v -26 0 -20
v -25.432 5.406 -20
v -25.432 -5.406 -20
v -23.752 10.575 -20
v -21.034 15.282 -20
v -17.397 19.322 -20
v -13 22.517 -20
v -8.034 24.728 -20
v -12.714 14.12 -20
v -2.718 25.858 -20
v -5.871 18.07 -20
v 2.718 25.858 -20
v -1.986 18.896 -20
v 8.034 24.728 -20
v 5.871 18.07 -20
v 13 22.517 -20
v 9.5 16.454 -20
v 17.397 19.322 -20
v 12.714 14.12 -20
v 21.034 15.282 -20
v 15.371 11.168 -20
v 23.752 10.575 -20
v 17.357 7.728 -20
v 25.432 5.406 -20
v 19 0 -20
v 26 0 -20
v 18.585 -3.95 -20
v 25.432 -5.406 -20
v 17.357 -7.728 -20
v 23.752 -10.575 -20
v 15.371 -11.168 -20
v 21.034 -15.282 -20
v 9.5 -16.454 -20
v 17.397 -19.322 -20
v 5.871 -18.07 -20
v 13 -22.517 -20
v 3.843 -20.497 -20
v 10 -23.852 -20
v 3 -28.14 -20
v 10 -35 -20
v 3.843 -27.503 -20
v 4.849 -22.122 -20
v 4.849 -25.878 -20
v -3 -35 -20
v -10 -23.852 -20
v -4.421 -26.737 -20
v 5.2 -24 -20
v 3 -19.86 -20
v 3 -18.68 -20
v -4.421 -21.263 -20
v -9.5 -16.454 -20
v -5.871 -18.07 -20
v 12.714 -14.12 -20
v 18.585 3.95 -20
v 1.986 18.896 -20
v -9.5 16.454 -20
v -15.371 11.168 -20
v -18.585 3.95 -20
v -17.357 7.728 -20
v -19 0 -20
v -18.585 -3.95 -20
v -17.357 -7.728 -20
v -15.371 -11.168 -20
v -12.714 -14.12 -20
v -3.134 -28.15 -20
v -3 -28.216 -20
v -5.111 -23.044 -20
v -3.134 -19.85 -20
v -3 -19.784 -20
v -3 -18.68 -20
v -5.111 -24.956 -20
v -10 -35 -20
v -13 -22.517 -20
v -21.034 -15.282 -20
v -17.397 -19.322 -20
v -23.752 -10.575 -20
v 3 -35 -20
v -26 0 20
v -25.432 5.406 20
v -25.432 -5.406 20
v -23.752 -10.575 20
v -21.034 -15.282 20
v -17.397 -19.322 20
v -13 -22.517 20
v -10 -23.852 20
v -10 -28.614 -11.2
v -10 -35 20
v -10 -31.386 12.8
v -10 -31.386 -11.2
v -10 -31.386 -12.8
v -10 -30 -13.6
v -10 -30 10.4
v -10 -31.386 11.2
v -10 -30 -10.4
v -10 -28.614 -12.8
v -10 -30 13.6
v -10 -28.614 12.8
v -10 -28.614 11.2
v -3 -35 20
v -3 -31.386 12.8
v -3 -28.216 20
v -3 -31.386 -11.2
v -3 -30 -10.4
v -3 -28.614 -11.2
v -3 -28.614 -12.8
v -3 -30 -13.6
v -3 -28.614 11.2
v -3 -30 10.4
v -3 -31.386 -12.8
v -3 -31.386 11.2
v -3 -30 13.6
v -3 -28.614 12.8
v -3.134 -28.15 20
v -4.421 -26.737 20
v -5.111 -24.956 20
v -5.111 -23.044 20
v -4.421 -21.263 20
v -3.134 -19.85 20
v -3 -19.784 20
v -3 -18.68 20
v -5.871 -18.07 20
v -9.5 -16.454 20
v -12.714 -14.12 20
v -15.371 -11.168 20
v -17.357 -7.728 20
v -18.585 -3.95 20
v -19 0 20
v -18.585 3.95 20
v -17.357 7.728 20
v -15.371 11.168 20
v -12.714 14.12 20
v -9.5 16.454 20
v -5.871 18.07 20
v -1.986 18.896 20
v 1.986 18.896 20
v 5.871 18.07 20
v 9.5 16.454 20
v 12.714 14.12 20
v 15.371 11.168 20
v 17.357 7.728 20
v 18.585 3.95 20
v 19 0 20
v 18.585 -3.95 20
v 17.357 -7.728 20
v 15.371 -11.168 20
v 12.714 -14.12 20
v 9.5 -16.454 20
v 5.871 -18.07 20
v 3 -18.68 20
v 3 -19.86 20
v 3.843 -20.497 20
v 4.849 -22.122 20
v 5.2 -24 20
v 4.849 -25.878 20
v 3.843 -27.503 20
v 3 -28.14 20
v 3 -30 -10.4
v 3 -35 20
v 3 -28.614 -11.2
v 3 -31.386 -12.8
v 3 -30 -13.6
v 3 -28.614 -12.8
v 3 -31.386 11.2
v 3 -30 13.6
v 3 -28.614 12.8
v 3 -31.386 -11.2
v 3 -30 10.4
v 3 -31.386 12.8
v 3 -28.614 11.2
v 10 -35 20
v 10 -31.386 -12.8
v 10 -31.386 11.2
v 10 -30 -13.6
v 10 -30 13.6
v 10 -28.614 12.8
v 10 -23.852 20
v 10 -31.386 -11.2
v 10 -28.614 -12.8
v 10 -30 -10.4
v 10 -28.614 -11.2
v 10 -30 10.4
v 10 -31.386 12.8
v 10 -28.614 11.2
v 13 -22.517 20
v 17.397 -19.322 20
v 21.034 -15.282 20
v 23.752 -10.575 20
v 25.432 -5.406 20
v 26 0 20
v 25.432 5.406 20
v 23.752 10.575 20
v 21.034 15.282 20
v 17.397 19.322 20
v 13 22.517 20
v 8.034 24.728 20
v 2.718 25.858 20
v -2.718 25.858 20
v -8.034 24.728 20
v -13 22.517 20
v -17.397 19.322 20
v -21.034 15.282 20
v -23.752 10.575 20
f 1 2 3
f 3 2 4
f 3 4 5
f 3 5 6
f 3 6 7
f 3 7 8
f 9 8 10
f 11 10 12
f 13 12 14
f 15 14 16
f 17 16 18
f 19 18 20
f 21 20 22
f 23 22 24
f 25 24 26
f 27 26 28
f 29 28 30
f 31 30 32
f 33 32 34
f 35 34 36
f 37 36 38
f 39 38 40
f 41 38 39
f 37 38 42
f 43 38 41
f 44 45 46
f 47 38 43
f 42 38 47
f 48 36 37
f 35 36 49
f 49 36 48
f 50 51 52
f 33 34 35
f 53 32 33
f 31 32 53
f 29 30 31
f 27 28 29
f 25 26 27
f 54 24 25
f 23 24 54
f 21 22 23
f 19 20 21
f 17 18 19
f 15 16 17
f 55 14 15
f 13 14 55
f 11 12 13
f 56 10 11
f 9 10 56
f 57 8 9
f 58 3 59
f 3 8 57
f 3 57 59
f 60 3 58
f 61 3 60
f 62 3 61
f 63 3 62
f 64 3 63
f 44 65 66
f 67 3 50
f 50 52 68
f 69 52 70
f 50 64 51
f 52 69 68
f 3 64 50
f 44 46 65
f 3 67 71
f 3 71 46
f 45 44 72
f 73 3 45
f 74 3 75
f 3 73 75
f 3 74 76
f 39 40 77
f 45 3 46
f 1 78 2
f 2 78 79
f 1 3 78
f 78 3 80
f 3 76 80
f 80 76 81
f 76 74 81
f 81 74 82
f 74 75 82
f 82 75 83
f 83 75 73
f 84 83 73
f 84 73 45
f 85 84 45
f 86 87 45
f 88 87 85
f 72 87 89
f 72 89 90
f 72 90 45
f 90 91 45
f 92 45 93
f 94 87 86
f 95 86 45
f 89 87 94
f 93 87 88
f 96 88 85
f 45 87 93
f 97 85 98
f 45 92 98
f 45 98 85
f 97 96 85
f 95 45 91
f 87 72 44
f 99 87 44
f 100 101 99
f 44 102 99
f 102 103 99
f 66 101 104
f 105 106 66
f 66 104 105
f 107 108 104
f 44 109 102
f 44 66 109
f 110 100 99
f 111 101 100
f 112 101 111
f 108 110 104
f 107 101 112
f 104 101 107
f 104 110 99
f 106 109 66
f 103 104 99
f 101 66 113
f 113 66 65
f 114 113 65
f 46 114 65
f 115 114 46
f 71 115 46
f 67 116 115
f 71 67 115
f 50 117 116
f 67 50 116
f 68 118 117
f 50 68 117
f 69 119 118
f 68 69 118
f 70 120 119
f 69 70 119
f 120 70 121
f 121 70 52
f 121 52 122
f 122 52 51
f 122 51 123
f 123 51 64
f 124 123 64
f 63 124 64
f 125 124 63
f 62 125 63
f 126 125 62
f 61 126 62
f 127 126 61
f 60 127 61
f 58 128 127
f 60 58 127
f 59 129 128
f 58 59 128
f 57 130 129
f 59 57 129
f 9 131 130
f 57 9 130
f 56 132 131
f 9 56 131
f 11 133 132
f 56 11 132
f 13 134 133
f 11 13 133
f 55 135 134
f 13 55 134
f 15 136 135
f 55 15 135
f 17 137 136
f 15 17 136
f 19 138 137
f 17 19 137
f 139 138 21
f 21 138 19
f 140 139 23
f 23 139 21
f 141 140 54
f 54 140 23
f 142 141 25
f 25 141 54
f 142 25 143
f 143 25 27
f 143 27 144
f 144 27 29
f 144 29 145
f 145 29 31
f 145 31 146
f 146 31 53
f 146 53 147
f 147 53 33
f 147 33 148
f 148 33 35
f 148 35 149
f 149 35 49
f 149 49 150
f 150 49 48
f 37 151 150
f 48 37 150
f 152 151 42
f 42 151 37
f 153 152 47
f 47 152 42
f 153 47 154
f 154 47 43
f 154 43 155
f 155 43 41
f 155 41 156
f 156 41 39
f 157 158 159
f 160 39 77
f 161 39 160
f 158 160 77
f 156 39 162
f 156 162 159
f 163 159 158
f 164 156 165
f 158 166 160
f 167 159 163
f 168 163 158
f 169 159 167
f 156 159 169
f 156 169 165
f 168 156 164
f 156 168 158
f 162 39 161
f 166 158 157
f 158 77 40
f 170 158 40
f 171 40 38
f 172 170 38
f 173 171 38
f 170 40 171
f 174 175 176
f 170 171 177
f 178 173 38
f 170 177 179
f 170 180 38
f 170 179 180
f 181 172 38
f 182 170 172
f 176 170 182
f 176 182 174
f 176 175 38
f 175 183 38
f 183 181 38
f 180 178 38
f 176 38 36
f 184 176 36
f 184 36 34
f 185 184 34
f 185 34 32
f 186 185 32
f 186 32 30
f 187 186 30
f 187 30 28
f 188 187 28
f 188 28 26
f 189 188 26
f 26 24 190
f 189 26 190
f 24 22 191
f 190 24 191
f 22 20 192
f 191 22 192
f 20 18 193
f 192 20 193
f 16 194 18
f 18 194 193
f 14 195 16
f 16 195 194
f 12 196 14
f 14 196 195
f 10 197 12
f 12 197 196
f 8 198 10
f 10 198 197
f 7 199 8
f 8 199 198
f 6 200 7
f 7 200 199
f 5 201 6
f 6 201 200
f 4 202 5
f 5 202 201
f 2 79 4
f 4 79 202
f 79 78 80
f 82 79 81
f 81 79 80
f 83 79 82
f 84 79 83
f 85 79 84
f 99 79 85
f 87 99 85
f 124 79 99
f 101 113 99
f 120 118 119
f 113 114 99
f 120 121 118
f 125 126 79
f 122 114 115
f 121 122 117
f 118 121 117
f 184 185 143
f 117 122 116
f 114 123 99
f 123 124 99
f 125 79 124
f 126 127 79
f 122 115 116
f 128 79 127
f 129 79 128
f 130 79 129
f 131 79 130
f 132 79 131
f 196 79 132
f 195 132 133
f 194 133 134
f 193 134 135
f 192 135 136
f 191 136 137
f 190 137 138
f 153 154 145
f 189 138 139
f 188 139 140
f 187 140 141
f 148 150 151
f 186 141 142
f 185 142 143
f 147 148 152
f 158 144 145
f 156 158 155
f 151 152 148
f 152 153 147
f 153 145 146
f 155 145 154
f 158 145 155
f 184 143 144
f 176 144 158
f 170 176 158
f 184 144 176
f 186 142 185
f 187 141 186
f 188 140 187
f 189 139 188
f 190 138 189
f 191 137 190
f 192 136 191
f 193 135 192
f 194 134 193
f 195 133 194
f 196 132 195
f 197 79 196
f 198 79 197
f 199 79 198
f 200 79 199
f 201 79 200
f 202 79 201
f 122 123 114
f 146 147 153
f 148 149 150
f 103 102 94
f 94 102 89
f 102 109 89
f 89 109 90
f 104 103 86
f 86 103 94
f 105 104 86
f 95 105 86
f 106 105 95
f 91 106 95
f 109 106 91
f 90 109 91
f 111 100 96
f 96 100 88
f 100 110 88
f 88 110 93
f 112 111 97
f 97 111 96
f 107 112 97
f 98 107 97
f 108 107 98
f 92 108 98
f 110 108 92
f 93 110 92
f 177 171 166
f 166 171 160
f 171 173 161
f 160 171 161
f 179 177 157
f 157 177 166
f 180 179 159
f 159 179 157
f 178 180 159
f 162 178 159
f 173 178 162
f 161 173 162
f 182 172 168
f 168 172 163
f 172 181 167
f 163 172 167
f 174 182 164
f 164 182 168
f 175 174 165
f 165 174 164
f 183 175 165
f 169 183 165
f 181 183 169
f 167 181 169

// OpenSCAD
difference() {
	union(){
		cylinder(r=26,h=40,center=true);
		translate([0,-28,0]) cube([20,14,40],center=true);
	}
	translate([0,0,-1])cylinder(r=19,h=48,center=true);
	translate([0,-28,-1]) cube([6,28,48],center=true);
	translate([0,-24,-1])cylinder(r=5.2,h=60,center=true);
	translate([0,-30,12])rotate([0,90,0])cylinder(r=1.6,h=60,center=true);
	translate([0,-30,-12])rotate([0,90,0])cylinder(r=1.6,h=60,center=true);

}
